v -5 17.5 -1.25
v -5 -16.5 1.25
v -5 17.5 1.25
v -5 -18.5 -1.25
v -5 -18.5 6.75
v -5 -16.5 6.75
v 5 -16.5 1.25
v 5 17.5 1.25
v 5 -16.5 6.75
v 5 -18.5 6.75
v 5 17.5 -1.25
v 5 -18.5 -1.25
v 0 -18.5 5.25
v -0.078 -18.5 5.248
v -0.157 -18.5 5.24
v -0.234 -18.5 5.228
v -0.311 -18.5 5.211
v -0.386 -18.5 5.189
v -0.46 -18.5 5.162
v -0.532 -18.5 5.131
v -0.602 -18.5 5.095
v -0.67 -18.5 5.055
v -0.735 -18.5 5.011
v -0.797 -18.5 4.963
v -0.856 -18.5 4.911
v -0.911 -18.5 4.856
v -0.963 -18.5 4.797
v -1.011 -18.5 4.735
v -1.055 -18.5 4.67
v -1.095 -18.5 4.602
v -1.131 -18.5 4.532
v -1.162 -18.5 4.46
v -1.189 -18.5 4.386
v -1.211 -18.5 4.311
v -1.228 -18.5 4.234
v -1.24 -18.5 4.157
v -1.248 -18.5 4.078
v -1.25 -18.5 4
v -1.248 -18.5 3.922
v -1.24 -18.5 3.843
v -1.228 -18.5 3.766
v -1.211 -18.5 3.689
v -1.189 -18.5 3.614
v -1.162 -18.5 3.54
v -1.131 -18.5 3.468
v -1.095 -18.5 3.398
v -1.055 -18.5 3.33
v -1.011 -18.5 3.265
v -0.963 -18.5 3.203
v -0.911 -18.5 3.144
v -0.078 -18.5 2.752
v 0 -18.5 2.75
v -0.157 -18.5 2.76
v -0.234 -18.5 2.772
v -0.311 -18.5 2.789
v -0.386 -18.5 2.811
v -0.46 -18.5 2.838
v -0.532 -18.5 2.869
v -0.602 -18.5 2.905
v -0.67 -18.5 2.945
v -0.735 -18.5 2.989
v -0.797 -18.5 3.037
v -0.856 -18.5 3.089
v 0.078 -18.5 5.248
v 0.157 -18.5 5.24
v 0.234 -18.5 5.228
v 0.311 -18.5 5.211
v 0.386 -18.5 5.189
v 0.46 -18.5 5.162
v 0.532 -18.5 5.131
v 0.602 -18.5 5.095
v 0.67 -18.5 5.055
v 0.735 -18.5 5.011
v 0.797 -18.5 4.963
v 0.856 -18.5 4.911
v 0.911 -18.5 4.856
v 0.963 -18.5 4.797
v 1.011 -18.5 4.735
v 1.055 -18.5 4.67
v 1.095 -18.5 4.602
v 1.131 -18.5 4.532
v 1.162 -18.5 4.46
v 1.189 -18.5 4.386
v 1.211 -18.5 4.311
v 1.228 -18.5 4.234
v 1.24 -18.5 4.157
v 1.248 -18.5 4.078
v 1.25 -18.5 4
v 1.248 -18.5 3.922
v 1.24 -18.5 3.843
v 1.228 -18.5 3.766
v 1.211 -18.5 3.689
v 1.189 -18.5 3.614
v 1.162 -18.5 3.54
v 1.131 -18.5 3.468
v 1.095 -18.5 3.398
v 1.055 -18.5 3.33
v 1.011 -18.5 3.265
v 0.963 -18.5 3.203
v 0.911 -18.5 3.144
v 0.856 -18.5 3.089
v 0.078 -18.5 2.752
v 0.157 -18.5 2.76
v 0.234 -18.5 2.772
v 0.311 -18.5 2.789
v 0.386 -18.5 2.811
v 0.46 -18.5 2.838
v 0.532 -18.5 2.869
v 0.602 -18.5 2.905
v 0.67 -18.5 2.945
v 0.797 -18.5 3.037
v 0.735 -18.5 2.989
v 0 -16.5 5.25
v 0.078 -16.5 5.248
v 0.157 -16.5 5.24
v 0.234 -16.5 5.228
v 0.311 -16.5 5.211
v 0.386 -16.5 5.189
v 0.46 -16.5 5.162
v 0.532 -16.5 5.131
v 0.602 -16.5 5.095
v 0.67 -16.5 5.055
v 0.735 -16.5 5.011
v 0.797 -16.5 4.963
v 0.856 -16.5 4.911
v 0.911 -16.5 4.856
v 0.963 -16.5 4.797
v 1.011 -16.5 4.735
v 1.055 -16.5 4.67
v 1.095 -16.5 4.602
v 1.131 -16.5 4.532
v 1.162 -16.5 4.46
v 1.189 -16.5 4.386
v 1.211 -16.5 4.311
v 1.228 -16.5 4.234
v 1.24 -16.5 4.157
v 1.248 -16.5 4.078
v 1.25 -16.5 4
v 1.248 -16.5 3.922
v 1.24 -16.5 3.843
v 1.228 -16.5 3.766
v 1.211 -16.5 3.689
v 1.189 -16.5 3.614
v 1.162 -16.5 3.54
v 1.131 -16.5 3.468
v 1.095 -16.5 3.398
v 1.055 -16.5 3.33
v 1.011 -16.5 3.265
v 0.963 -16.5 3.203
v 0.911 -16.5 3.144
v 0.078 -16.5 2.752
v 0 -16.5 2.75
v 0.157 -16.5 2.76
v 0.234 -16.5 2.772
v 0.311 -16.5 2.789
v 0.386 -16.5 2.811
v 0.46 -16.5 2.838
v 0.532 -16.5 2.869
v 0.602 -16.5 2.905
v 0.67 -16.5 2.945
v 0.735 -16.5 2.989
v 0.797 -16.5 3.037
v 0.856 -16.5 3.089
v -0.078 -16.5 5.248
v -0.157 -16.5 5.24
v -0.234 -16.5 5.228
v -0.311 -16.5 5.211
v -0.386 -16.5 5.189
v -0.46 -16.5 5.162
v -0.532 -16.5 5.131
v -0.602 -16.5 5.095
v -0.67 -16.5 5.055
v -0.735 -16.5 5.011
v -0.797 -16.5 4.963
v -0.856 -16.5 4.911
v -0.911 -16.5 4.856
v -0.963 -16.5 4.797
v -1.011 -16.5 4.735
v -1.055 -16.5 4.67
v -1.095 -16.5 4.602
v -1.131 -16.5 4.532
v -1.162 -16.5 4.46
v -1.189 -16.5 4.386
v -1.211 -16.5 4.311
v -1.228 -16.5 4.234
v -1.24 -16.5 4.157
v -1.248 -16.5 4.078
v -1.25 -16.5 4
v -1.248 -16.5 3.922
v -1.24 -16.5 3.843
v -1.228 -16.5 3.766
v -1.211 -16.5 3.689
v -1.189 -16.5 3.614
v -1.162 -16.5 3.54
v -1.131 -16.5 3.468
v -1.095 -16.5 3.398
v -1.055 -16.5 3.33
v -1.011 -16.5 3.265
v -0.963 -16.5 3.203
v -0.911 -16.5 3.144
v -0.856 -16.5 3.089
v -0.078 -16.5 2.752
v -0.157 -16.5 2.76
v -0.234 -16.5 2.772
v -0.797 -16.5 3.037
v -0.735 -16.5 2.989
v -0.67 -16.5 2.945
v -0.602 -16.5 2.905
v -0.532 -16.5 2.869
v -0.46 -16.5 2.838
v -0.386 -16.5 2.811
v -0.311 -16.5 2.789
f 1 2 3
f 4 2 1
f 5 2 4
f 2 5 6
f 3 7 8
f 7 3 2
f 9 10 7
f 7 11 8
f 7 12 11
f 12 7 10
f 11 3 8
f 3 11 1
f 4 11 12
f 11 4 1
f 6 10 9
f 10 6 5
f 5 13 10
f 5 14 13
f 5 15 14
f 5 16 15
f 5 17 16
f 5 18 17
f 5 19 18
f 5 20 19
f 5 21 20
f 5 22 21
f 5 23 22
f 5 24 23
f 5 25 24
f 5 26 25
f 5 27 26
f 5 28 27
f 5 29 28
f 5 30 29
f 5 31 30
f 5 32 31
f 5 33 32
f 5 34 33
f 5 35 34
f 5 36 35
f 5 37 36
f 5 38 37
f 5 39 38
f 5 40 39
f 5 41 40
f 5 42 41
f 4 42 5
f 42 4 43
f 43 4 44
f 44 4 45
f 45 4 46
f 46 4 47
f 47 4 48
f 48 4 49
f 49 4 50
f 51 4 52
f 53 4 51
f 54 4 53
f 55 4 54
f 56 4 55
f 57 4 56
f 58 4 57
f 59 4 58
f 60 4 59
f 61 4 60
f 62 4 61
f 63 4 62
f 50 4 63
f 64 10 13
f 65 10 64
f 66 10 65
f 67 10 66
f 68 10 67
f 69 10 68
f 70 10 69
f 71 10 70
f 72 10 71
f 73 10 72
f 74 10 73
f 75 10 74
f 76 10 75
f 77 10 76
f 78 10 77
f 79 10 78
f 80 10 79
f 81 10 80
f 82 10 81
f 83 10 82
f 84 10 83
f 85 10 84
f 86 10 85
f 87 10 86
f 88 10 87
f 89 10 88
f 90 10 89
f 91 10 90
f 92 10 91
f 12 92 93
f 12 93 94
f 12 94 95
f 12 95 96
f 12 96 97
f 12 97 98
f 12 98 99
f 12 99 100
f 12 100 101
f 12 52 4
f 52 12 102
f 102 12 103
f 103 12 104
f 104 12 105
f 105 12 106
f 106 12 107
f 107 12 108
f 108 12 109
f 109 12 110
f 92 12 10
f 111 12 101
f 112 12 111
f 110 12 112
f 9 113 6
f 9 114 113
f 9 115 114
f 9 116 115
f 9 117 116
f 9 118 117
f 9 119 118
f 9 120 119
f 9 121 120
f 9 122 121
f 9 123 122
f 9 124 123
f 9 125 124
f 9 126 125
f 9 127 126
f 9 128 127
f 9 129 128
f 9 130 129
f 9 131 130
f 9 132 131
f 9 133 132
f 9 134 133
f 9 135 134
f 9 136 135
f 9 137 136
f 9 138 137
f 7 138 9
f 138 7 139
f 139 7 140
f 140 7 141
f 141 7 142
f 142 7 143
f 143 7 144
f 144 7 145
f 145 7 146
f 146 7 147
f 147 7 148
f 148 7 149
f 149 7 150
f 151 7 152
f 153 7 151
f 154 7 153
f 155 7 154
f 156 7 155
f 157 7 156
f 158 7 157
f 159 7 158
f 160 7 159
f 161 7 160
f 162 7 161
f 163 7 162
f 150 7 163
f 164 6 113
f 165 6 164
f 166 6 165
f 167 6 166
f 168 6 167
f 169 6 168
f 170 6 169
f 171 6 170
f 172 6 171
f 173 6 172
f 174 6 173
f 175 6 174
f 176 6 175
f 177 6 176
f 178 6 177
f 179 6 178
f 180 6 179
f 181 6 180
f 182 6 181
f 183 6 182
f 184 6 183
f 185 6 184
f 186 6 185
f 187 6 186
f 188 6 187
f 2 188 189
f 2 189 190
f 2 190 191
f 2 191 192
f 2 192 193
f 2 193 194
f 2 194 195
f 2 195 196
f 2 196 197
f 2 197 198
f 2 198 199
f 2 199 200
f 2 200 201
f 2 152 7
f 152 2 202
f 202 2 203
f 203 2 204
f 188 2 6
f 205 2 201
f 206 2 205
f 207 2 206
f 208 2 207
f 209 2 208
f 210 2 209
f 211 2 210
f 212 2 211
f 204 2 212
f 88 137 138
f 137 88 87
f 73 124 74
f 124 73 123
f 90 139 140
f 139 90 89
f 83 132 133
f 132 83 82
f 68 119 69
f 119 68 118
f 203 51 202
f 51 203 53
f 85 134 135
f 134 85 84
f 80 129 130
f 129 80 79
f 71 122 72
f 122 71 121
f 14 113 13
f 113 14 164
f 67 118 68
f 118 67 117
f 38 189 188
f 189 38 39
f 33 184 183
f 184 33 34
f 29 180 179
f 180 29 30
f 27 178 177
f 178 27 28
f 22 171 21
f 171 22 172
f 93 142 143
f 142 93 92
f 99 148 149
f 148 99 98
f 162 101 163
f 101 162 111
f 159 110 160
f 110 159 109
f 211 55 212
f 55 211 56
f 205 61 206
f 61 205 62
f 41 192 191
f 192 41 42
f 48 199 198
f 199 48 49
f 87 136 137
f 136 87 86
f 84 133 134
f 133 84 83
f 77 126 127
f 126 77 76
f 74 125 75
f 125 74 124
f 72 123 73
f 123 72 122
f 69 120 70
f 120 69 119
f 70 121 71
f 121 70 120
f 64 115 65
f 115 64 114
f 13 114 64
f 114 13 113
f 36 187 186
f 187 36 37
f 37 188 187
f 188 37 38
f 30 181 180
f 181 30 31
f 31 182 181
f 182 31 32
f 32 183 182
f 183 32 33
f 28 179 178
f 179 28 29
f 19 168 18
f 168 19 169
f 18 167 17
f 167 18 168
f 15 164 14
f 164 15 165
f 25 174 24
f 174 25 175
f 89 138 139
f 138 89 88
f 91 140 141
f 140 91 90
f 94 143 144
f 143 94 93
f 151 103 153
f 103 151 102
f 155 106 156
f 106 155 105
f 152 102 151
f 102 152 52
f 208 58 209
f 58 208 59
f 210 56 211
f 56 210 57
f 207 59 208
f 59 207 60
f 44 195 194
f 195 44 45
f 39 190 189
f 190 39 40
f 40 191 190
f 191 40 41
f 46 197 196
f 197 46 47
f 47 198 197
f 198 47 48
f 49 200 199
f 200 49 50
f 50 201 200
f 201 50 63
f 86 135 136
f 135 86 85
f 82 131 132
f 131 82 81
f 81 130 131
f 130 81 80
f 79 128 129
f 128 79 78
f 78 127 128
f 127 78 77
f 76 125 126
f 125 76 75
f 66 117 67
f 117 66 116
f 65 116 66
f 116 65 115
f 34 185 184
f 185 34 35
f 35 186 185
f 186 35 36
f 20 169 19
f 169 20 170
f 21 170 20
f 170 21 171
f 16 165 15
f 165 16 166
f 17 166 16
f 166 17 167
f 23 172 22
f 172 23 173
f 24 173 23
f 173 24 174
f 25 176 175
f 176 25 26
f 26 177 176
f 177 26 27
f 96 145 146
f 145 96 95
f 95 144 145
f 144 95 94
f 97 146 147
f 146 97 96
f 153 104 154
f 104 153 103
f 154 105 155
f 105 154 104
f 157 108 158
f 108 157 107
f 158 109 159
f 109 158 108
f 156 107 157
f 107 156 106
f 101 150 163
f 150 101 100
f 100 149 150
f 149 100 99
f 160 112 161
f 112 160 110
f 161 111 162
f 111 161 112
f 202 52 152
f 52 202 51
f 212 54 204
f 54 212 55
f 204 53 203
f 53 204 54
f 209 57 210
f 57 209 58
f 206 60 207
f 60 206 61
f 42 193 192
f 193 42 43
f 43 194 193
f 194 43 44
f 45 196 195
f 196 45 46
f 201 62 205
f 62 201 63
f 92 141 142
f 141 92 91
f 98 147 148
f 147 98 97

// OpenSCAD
difference(){
  body();
  translate([0,0,4])
  rotate([90,0,0])
    #cylinder(h=20,d=2.5, $fn=100);
}

module body(){
cube([10,35,2.5], true);
translate([0,-17.5,2.75])
  cube([10,2,8], true);
}
